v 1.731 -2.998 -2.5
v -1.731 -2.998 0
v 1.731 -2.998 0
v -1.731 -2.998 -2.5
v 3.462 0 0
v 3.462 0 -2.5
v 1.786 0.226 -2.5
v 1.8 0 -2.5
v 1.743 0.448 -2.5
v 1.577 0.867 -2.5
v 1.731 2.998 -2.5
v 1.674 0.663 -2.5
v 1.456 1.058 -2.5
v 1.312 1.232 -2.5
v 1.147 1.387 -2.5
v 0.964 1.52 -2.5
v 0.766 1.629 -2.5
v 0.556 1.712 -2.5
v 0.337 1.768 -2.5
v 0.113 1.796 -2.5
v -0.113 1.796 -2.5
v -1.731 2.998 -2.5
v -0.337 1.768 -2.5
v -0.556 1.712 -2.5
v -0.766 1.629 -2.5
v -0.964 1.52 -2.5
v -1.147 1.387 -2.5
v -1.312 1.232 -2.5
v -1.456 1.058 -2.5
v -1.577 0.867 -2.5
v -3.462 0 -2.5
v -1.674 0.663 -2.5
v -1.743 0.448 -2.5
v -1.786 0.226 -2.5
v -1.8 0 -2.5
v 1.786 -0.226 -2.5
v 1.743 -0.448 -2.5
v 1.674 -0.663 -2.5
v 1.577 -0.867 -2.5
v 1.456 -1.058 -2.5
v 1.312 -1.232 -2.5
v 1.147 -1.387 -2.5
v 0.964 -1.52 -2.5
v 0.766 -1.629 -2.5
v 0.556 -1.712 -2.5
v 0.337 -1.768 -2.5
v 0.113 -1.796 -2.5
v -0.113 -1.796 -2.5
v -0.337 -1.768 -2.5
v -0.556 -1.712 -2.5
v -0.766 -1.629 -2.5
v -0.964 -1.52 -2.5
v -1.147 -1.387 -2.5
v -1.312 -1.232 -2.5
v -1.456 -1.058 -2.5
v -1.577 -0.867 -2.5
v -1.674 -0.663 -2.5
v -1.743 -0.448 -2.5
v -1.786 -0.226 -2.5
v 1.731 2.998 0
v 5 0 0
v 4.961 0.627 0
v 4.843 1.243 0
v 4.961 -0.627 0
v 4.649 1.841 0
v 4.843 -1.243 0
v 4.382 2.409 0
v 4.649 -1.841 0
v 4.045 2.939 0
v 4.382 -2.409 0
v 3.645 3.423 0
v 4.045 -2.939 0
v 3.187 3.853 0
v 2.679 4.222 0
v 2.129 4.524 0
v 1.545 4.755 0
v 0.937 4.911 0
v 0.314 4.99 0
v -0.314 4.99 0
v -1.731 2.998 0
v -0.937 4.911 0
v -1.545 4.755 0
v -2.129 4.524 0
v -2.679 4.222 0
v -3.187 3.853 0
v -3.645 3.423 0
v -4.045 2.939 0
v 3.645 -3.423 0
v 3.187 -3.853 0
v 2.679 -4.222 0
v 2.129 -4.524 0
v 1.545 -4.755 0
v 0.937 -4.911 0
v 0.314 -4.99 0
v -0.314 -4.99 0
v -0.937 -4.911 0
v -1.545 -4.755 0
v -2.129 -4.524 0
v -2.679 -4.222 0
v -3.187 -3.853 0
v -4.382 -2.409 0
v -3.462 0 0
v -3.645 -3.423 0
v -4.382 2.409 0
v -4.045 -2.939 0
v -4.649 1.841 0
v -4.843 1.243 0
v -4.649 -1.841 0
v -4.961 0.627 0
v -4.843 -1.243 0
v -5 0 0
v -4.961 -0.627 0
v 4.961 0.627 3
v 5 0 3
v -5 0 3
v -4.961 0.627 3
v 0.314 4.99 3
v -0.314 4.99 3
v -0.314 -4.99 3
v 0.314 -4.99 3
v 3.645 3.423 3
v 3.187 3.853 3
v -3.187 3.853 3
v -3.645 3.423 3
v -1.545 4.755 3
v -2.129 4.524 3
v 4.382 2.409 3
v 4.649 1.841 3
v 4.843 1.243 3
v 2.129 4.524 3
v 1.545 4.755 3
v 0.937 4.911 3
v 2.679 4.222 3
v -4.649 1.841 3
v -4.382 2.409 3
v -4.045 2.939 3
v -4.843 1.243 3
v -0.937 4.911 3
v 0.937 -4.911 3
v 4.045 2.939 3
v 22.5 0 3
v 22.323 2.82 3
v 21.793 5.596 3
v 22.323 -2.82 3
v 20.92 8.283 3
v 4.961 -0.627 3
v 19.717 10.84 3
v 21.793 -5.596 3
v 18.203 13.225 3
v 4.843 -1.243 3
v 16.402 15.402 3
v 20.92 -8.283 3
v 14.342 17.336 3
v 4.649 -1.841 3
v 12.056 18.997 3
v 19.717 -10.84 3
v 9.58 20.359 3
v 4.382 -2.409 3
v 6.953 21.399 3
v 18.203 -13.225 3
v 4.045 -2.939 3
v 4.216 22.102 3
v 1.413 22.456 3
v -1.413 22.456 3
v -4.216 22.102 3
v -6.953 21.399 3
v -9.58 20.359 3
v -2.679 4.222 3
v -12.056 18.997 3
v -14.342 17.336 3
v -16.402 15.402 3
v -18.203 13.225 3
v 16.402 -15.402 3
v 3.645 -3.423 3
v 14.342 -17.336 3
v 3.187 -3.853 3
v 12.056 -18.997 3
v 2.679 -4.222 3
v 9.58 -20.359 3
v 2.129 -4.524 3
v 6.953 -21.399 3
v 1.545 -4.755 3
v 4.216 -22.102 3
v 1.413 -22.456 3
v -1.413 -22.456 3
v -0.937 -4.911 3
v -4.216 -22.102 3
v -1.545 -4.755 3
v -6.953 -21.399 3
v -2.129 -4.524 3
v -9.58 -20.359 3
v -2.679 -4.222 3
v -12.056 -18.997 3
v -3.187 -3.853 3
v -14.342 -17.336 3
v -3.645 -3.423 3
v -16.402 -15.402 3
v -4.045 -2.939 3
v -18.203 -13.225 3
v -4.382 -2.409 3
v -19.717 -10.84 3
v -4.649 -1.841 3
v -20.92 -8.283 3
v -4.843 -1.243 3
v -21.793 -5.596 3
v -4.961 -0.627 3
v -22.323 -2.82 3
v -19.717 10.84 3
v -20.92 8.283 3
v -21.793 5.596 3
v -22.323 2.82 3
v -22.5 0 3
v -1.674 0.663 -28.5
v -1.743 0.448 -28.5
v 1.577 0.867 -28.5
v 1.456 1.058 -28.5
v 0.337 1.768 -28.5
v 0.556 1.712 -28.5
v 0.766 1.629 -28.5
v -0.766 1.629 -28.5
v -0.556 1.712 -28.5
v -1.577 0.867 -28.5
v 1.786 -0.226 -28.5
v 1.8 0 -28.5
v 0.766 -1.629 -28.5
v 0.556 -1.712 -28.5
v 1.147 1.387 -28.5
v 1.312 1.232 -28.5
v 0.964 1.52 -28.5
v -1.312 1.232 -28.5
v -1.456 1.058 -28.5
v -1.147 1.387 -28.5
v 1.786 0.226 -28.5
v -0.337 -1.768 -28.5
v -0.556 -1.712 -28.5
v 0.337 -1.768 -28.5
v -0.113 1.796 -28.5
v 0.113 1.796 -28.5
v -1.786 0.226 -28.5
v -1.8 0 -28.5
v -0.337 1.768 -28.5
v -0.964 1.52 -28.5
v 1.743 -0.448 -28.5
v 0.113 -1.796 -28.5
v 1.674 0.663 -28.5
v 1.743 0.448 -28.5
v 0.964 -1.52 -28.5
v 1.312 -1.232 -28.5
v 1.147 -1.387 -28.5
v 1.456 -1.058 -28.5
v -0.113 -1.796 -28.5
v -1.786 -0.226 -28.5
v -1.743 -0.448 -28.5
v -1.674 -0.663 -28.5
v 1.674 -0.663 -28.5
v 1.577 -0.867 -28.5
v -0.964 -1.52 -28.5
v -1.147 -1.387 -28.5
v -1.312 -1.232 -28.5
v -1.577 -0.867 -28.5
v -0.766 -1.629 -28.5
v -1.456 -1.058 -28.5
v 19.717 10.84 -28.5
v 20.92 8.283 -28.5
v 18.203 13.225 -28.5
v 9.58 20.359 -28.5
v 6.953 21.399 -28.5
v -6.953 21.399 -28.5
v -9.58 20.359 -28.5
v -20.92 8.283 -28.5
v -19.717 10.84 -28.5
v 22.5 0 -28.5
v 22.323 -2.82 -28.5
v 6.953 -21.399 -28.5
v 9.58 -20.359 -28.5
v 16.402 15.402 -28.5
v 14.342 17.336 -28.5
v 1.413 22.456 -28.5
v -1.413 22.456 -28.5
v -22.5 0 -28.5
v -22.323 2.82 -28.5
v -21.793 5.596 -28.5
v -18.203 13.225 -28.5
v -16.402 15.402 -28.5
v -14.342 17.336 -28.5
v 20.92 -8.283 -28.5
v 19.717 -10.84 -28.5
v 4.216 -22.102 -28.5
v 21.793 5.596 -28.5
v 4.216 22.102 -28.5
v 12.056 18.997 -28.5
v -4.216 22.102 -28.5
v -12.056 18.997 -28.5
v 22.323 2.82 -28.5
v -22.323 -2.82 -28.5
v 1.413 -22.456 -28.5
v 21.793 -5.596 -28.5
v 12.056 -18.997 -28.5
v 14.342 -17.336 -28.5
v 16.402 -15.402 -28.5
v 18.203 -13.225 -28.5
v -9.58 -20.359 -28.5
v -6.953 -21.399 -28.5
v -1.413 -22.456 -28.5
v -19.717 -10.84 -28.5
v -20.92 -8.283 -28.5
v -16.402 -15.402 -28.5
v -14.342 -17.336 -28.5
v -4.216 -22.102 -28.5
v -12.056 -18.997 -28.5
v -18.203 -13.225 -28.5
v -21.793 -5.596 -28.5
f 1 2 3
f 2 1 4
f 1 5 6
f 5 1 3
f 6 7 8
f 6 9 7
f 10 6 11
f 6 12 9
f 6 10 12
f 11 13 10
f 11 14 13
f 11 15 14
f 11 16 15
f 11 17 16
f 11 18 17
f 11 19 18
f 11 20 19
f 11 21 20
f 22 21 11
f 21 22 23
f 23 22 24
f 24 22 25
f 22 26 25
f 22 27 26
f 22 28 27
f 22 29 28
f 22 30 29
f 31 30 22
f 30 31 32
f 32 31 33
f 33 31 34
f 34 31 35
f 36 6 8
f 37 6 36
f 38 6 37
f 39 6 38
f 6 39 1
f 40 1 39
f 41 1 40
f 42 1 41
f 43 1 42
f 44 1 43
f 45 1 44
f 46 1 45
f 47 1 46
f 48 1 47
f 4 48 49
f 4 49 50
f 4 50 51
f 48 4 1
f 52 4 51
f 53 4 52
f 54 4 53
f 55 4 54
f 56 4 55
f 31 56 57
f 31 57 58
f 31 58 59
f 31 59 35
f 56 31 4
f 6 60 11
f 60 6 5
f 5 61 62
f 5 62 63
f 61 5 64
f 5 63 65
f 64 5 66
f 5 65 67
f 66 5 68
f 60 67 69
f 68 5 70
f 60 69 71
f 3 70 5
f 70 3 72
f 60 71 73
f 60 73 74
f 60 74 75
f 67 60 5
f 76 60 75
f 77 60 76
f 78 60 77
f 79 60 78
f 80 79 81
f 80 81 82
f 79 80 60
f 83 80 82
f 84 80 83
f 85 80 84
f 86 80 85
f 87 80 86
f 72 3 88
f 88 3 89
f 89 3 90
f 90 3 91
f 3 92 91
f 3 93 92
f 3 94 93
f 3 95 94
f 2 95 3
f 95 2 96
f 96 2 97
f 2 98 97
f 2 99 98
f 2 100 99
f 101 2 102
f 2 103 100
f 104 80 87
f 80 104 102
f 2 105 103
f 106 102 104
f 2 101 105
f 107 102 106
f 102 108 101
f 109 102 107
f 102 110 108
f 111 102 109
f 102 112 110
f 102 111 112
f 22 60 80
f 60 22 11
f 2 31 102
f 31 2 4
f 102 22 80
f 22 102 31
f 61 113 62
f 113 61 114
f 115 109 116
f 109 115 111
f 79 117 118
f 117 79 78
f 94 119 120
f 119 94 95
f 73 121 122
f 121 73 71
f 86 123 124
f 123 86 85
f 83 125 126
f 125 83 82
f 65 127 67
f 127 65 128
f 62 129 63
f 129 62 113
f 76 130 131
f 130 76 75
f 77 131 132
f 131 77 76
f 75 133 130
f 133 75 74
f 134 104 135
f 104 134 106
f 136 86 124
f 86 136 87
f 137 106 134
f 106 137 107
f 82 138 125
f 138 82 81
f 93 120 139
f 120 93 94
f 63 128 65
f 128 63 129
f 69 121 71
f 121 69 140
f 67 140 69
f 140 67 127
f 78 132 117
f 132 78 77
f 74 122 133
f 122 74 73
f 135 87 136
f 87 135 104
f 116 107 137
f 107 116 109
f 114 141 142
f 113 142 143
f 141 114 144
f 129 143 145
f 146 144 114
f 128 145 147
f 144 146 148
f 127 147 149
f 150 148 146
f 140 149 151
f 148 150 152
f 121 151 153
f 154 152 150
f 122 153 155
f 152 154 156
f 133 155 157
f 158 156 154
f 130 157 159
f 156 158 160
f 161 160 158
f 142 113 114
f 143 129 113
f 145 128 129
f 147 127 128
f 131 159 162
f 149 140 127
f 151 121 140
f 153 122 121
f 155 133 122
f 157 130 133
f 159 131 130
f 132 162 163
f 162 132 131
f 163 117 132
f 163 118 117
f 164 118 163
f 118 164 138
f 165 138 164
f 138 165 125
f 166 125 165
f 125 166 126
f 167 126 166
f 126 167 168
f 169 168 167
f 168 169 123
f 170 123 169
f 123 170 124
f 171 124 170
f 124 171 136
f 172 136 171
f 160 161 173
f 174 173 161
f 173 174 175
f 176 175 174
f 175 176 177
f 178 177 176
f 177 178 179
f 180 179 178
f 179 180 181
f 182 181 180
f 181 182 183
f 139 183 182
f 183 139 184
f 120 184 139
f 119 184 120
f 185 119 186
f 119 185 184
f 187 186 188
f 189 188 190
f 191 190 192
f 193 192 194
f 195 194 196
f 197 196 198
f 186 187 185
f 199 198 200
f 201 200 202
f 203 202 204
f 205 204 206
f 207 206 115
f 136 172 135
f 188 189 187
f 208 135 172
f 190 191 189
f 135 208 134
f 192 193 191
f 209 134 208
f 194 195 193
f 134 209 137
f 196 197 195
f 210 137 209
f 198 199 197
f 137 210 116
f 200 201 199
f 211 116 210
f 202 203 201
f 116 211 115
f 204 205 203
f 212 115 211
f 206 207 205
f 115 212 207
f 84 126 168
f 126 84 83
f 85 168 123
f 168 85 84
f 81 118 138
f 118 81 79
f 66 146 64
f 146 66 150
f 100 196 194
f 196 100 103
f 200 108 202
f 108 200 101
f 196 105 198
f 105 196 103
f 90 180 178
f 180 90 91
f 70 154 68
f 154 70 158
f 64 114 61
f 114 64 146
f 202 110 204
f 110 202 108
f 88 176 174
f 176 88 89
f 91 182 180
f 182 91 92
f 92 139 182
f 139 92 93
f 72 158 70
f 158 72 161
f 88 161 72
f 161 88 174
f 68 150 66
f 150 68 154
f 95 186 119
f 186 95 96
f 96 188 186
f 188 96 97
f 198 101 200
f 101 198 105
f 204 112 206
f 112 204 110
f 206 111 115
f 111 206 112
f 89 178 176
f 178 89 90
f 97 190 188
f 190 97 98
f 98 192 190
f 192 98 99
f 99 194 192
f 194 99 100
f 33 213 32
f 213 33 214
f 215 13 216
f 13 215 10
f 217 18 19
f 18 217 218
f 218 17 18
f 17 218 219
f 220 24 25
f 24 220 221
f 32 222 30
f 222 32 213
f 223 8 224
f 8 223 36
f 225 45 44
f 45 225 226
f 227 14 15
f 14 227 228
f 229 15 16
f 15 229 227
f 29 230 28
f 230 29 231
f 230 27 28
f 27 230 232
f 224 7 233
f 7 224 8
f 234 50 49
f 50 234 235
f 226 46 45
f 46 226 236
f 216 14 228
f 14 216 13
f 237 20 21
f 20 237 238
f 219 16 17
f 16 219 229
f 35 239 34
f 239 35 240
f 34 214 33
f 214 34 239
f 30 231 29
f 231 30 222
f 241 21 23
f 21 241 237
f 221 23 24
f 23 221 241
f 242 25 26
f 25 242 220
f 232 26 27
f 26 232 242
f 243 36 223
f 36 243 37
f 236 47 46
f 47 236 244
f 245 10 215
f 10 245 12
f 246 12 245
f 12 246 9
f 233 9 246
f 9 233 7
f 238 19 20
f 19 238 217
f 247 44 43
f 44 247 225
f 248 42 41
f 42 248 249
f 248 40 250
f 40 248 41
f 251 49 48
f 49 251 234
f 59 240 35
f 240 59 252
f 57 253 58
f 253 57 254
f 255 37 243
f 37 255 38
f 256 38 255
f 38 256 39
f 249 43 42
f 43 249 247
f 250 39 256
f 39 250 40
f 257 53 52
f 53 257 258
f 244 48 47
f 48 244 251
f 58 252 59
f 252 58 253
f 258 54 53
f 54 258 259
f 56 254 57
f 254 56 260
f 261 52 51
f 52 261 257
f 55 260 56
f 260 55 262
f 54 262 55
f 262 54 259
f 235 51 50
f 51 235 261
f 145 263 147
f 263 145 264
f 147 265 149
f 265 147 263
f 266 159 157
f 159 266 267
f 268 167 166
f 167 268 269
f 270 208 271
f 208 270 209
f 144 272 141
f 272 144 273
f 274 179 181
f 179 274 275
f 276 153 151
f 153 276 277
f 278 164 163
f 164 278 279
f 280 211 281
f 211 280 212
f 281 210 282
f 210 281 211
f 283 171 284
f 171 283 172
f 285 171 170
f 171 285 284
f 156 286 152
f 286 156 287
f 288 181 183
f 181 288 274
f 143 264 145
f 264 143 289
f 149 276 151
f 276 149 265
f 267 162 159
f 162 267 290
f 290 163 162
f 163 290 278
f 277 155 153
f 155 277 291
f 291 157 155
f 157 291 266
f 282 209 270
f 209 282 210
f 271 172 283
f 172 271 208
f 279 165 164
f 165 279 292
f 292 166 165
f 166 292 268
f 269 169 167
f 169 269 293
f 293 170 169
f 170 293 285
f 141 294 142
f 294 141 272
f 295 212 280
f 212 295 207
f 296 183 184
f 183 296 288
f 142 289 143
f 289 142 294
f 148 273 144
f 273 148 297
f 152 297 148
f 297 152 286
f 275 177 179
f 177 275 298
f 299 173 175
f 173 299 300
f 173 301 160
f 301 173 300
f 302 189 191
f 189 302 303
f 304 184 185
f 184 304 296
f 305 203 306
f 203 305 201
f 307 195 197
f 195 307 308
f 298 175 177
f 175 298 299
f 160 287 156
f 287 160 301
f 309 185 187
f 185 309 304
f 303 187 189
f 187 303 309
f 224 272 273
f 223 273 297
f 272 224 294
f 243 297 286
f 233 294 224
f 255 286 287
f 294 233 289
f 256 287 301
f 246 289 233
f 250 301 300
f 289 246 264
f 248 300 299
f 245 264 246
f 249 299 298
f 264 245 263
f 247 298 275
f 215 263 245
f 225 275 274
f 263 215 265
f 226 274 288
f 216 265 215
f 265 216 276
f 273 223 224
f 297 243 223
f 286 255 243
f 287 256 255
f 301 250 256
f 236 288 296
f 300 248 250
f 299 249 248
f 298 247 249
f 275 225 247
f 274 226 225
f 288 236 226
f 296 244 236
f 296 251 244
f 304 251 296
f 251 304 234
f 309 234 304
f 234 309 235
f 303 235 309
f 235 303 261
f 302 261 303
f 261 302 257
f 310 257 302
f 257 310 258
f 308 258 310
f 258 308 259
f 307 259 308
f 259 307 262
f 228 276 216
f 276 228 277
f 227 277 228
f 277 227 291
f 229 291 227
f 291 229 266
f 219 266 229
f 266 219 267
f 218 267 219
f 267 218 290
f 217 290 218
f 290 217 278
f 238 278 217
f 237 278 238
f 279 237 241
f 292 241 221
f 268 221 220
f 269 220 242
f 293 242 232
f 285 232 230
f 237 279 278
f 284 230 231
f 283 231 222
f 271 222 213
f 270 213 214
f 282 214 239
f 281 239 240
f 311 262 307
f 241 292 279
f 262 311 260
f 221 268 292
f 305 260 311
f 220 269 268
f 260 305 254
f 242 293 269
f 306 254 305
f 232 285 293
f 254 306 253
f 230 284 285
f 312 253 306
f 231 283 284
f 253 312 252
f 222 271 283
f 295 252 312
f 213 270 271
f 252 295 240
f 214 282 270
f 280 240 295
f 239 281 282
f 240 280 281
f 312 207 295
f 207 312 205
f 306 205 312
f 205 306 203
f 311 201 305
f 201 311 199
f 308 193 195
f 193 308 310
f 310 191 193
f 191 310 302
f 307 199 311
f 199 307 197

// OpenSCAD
$fn = 50;

difference() {
	union() {
		translate(v = [0, 0, -28.5]) {
			cylinder(h = 31.5, r = 22.5);
		}
	}
	union() {
		translate(v = [0, 0, 0]) {
			rotate(a = [0, 0, 0]) {
				difference() {
					union() {
						translate(v = [0, 0, -2.5]) {
							linear_extrude(height = 2.5) {
								polygon(points = [[3.4619999999999997, 0.0], [1.7310000000000003, 2.9981799479017264], [-1.7309999999999992, 2.9981799479017264], [-3.4619999999999997, 4.2397272186481365e-16], [-1.7310000000000014, -2.998179947901726], [1.7309999999999977, -2.9981799479017277]]);
							}
						}
					}
					union();
				}
			}
		}
		#cylinder(h = 3, r = 5.0);
		#translate(v = [0, 0, -100.0]) {
			cylinder(h = 200, r = 1.8);
		}
	}
}
